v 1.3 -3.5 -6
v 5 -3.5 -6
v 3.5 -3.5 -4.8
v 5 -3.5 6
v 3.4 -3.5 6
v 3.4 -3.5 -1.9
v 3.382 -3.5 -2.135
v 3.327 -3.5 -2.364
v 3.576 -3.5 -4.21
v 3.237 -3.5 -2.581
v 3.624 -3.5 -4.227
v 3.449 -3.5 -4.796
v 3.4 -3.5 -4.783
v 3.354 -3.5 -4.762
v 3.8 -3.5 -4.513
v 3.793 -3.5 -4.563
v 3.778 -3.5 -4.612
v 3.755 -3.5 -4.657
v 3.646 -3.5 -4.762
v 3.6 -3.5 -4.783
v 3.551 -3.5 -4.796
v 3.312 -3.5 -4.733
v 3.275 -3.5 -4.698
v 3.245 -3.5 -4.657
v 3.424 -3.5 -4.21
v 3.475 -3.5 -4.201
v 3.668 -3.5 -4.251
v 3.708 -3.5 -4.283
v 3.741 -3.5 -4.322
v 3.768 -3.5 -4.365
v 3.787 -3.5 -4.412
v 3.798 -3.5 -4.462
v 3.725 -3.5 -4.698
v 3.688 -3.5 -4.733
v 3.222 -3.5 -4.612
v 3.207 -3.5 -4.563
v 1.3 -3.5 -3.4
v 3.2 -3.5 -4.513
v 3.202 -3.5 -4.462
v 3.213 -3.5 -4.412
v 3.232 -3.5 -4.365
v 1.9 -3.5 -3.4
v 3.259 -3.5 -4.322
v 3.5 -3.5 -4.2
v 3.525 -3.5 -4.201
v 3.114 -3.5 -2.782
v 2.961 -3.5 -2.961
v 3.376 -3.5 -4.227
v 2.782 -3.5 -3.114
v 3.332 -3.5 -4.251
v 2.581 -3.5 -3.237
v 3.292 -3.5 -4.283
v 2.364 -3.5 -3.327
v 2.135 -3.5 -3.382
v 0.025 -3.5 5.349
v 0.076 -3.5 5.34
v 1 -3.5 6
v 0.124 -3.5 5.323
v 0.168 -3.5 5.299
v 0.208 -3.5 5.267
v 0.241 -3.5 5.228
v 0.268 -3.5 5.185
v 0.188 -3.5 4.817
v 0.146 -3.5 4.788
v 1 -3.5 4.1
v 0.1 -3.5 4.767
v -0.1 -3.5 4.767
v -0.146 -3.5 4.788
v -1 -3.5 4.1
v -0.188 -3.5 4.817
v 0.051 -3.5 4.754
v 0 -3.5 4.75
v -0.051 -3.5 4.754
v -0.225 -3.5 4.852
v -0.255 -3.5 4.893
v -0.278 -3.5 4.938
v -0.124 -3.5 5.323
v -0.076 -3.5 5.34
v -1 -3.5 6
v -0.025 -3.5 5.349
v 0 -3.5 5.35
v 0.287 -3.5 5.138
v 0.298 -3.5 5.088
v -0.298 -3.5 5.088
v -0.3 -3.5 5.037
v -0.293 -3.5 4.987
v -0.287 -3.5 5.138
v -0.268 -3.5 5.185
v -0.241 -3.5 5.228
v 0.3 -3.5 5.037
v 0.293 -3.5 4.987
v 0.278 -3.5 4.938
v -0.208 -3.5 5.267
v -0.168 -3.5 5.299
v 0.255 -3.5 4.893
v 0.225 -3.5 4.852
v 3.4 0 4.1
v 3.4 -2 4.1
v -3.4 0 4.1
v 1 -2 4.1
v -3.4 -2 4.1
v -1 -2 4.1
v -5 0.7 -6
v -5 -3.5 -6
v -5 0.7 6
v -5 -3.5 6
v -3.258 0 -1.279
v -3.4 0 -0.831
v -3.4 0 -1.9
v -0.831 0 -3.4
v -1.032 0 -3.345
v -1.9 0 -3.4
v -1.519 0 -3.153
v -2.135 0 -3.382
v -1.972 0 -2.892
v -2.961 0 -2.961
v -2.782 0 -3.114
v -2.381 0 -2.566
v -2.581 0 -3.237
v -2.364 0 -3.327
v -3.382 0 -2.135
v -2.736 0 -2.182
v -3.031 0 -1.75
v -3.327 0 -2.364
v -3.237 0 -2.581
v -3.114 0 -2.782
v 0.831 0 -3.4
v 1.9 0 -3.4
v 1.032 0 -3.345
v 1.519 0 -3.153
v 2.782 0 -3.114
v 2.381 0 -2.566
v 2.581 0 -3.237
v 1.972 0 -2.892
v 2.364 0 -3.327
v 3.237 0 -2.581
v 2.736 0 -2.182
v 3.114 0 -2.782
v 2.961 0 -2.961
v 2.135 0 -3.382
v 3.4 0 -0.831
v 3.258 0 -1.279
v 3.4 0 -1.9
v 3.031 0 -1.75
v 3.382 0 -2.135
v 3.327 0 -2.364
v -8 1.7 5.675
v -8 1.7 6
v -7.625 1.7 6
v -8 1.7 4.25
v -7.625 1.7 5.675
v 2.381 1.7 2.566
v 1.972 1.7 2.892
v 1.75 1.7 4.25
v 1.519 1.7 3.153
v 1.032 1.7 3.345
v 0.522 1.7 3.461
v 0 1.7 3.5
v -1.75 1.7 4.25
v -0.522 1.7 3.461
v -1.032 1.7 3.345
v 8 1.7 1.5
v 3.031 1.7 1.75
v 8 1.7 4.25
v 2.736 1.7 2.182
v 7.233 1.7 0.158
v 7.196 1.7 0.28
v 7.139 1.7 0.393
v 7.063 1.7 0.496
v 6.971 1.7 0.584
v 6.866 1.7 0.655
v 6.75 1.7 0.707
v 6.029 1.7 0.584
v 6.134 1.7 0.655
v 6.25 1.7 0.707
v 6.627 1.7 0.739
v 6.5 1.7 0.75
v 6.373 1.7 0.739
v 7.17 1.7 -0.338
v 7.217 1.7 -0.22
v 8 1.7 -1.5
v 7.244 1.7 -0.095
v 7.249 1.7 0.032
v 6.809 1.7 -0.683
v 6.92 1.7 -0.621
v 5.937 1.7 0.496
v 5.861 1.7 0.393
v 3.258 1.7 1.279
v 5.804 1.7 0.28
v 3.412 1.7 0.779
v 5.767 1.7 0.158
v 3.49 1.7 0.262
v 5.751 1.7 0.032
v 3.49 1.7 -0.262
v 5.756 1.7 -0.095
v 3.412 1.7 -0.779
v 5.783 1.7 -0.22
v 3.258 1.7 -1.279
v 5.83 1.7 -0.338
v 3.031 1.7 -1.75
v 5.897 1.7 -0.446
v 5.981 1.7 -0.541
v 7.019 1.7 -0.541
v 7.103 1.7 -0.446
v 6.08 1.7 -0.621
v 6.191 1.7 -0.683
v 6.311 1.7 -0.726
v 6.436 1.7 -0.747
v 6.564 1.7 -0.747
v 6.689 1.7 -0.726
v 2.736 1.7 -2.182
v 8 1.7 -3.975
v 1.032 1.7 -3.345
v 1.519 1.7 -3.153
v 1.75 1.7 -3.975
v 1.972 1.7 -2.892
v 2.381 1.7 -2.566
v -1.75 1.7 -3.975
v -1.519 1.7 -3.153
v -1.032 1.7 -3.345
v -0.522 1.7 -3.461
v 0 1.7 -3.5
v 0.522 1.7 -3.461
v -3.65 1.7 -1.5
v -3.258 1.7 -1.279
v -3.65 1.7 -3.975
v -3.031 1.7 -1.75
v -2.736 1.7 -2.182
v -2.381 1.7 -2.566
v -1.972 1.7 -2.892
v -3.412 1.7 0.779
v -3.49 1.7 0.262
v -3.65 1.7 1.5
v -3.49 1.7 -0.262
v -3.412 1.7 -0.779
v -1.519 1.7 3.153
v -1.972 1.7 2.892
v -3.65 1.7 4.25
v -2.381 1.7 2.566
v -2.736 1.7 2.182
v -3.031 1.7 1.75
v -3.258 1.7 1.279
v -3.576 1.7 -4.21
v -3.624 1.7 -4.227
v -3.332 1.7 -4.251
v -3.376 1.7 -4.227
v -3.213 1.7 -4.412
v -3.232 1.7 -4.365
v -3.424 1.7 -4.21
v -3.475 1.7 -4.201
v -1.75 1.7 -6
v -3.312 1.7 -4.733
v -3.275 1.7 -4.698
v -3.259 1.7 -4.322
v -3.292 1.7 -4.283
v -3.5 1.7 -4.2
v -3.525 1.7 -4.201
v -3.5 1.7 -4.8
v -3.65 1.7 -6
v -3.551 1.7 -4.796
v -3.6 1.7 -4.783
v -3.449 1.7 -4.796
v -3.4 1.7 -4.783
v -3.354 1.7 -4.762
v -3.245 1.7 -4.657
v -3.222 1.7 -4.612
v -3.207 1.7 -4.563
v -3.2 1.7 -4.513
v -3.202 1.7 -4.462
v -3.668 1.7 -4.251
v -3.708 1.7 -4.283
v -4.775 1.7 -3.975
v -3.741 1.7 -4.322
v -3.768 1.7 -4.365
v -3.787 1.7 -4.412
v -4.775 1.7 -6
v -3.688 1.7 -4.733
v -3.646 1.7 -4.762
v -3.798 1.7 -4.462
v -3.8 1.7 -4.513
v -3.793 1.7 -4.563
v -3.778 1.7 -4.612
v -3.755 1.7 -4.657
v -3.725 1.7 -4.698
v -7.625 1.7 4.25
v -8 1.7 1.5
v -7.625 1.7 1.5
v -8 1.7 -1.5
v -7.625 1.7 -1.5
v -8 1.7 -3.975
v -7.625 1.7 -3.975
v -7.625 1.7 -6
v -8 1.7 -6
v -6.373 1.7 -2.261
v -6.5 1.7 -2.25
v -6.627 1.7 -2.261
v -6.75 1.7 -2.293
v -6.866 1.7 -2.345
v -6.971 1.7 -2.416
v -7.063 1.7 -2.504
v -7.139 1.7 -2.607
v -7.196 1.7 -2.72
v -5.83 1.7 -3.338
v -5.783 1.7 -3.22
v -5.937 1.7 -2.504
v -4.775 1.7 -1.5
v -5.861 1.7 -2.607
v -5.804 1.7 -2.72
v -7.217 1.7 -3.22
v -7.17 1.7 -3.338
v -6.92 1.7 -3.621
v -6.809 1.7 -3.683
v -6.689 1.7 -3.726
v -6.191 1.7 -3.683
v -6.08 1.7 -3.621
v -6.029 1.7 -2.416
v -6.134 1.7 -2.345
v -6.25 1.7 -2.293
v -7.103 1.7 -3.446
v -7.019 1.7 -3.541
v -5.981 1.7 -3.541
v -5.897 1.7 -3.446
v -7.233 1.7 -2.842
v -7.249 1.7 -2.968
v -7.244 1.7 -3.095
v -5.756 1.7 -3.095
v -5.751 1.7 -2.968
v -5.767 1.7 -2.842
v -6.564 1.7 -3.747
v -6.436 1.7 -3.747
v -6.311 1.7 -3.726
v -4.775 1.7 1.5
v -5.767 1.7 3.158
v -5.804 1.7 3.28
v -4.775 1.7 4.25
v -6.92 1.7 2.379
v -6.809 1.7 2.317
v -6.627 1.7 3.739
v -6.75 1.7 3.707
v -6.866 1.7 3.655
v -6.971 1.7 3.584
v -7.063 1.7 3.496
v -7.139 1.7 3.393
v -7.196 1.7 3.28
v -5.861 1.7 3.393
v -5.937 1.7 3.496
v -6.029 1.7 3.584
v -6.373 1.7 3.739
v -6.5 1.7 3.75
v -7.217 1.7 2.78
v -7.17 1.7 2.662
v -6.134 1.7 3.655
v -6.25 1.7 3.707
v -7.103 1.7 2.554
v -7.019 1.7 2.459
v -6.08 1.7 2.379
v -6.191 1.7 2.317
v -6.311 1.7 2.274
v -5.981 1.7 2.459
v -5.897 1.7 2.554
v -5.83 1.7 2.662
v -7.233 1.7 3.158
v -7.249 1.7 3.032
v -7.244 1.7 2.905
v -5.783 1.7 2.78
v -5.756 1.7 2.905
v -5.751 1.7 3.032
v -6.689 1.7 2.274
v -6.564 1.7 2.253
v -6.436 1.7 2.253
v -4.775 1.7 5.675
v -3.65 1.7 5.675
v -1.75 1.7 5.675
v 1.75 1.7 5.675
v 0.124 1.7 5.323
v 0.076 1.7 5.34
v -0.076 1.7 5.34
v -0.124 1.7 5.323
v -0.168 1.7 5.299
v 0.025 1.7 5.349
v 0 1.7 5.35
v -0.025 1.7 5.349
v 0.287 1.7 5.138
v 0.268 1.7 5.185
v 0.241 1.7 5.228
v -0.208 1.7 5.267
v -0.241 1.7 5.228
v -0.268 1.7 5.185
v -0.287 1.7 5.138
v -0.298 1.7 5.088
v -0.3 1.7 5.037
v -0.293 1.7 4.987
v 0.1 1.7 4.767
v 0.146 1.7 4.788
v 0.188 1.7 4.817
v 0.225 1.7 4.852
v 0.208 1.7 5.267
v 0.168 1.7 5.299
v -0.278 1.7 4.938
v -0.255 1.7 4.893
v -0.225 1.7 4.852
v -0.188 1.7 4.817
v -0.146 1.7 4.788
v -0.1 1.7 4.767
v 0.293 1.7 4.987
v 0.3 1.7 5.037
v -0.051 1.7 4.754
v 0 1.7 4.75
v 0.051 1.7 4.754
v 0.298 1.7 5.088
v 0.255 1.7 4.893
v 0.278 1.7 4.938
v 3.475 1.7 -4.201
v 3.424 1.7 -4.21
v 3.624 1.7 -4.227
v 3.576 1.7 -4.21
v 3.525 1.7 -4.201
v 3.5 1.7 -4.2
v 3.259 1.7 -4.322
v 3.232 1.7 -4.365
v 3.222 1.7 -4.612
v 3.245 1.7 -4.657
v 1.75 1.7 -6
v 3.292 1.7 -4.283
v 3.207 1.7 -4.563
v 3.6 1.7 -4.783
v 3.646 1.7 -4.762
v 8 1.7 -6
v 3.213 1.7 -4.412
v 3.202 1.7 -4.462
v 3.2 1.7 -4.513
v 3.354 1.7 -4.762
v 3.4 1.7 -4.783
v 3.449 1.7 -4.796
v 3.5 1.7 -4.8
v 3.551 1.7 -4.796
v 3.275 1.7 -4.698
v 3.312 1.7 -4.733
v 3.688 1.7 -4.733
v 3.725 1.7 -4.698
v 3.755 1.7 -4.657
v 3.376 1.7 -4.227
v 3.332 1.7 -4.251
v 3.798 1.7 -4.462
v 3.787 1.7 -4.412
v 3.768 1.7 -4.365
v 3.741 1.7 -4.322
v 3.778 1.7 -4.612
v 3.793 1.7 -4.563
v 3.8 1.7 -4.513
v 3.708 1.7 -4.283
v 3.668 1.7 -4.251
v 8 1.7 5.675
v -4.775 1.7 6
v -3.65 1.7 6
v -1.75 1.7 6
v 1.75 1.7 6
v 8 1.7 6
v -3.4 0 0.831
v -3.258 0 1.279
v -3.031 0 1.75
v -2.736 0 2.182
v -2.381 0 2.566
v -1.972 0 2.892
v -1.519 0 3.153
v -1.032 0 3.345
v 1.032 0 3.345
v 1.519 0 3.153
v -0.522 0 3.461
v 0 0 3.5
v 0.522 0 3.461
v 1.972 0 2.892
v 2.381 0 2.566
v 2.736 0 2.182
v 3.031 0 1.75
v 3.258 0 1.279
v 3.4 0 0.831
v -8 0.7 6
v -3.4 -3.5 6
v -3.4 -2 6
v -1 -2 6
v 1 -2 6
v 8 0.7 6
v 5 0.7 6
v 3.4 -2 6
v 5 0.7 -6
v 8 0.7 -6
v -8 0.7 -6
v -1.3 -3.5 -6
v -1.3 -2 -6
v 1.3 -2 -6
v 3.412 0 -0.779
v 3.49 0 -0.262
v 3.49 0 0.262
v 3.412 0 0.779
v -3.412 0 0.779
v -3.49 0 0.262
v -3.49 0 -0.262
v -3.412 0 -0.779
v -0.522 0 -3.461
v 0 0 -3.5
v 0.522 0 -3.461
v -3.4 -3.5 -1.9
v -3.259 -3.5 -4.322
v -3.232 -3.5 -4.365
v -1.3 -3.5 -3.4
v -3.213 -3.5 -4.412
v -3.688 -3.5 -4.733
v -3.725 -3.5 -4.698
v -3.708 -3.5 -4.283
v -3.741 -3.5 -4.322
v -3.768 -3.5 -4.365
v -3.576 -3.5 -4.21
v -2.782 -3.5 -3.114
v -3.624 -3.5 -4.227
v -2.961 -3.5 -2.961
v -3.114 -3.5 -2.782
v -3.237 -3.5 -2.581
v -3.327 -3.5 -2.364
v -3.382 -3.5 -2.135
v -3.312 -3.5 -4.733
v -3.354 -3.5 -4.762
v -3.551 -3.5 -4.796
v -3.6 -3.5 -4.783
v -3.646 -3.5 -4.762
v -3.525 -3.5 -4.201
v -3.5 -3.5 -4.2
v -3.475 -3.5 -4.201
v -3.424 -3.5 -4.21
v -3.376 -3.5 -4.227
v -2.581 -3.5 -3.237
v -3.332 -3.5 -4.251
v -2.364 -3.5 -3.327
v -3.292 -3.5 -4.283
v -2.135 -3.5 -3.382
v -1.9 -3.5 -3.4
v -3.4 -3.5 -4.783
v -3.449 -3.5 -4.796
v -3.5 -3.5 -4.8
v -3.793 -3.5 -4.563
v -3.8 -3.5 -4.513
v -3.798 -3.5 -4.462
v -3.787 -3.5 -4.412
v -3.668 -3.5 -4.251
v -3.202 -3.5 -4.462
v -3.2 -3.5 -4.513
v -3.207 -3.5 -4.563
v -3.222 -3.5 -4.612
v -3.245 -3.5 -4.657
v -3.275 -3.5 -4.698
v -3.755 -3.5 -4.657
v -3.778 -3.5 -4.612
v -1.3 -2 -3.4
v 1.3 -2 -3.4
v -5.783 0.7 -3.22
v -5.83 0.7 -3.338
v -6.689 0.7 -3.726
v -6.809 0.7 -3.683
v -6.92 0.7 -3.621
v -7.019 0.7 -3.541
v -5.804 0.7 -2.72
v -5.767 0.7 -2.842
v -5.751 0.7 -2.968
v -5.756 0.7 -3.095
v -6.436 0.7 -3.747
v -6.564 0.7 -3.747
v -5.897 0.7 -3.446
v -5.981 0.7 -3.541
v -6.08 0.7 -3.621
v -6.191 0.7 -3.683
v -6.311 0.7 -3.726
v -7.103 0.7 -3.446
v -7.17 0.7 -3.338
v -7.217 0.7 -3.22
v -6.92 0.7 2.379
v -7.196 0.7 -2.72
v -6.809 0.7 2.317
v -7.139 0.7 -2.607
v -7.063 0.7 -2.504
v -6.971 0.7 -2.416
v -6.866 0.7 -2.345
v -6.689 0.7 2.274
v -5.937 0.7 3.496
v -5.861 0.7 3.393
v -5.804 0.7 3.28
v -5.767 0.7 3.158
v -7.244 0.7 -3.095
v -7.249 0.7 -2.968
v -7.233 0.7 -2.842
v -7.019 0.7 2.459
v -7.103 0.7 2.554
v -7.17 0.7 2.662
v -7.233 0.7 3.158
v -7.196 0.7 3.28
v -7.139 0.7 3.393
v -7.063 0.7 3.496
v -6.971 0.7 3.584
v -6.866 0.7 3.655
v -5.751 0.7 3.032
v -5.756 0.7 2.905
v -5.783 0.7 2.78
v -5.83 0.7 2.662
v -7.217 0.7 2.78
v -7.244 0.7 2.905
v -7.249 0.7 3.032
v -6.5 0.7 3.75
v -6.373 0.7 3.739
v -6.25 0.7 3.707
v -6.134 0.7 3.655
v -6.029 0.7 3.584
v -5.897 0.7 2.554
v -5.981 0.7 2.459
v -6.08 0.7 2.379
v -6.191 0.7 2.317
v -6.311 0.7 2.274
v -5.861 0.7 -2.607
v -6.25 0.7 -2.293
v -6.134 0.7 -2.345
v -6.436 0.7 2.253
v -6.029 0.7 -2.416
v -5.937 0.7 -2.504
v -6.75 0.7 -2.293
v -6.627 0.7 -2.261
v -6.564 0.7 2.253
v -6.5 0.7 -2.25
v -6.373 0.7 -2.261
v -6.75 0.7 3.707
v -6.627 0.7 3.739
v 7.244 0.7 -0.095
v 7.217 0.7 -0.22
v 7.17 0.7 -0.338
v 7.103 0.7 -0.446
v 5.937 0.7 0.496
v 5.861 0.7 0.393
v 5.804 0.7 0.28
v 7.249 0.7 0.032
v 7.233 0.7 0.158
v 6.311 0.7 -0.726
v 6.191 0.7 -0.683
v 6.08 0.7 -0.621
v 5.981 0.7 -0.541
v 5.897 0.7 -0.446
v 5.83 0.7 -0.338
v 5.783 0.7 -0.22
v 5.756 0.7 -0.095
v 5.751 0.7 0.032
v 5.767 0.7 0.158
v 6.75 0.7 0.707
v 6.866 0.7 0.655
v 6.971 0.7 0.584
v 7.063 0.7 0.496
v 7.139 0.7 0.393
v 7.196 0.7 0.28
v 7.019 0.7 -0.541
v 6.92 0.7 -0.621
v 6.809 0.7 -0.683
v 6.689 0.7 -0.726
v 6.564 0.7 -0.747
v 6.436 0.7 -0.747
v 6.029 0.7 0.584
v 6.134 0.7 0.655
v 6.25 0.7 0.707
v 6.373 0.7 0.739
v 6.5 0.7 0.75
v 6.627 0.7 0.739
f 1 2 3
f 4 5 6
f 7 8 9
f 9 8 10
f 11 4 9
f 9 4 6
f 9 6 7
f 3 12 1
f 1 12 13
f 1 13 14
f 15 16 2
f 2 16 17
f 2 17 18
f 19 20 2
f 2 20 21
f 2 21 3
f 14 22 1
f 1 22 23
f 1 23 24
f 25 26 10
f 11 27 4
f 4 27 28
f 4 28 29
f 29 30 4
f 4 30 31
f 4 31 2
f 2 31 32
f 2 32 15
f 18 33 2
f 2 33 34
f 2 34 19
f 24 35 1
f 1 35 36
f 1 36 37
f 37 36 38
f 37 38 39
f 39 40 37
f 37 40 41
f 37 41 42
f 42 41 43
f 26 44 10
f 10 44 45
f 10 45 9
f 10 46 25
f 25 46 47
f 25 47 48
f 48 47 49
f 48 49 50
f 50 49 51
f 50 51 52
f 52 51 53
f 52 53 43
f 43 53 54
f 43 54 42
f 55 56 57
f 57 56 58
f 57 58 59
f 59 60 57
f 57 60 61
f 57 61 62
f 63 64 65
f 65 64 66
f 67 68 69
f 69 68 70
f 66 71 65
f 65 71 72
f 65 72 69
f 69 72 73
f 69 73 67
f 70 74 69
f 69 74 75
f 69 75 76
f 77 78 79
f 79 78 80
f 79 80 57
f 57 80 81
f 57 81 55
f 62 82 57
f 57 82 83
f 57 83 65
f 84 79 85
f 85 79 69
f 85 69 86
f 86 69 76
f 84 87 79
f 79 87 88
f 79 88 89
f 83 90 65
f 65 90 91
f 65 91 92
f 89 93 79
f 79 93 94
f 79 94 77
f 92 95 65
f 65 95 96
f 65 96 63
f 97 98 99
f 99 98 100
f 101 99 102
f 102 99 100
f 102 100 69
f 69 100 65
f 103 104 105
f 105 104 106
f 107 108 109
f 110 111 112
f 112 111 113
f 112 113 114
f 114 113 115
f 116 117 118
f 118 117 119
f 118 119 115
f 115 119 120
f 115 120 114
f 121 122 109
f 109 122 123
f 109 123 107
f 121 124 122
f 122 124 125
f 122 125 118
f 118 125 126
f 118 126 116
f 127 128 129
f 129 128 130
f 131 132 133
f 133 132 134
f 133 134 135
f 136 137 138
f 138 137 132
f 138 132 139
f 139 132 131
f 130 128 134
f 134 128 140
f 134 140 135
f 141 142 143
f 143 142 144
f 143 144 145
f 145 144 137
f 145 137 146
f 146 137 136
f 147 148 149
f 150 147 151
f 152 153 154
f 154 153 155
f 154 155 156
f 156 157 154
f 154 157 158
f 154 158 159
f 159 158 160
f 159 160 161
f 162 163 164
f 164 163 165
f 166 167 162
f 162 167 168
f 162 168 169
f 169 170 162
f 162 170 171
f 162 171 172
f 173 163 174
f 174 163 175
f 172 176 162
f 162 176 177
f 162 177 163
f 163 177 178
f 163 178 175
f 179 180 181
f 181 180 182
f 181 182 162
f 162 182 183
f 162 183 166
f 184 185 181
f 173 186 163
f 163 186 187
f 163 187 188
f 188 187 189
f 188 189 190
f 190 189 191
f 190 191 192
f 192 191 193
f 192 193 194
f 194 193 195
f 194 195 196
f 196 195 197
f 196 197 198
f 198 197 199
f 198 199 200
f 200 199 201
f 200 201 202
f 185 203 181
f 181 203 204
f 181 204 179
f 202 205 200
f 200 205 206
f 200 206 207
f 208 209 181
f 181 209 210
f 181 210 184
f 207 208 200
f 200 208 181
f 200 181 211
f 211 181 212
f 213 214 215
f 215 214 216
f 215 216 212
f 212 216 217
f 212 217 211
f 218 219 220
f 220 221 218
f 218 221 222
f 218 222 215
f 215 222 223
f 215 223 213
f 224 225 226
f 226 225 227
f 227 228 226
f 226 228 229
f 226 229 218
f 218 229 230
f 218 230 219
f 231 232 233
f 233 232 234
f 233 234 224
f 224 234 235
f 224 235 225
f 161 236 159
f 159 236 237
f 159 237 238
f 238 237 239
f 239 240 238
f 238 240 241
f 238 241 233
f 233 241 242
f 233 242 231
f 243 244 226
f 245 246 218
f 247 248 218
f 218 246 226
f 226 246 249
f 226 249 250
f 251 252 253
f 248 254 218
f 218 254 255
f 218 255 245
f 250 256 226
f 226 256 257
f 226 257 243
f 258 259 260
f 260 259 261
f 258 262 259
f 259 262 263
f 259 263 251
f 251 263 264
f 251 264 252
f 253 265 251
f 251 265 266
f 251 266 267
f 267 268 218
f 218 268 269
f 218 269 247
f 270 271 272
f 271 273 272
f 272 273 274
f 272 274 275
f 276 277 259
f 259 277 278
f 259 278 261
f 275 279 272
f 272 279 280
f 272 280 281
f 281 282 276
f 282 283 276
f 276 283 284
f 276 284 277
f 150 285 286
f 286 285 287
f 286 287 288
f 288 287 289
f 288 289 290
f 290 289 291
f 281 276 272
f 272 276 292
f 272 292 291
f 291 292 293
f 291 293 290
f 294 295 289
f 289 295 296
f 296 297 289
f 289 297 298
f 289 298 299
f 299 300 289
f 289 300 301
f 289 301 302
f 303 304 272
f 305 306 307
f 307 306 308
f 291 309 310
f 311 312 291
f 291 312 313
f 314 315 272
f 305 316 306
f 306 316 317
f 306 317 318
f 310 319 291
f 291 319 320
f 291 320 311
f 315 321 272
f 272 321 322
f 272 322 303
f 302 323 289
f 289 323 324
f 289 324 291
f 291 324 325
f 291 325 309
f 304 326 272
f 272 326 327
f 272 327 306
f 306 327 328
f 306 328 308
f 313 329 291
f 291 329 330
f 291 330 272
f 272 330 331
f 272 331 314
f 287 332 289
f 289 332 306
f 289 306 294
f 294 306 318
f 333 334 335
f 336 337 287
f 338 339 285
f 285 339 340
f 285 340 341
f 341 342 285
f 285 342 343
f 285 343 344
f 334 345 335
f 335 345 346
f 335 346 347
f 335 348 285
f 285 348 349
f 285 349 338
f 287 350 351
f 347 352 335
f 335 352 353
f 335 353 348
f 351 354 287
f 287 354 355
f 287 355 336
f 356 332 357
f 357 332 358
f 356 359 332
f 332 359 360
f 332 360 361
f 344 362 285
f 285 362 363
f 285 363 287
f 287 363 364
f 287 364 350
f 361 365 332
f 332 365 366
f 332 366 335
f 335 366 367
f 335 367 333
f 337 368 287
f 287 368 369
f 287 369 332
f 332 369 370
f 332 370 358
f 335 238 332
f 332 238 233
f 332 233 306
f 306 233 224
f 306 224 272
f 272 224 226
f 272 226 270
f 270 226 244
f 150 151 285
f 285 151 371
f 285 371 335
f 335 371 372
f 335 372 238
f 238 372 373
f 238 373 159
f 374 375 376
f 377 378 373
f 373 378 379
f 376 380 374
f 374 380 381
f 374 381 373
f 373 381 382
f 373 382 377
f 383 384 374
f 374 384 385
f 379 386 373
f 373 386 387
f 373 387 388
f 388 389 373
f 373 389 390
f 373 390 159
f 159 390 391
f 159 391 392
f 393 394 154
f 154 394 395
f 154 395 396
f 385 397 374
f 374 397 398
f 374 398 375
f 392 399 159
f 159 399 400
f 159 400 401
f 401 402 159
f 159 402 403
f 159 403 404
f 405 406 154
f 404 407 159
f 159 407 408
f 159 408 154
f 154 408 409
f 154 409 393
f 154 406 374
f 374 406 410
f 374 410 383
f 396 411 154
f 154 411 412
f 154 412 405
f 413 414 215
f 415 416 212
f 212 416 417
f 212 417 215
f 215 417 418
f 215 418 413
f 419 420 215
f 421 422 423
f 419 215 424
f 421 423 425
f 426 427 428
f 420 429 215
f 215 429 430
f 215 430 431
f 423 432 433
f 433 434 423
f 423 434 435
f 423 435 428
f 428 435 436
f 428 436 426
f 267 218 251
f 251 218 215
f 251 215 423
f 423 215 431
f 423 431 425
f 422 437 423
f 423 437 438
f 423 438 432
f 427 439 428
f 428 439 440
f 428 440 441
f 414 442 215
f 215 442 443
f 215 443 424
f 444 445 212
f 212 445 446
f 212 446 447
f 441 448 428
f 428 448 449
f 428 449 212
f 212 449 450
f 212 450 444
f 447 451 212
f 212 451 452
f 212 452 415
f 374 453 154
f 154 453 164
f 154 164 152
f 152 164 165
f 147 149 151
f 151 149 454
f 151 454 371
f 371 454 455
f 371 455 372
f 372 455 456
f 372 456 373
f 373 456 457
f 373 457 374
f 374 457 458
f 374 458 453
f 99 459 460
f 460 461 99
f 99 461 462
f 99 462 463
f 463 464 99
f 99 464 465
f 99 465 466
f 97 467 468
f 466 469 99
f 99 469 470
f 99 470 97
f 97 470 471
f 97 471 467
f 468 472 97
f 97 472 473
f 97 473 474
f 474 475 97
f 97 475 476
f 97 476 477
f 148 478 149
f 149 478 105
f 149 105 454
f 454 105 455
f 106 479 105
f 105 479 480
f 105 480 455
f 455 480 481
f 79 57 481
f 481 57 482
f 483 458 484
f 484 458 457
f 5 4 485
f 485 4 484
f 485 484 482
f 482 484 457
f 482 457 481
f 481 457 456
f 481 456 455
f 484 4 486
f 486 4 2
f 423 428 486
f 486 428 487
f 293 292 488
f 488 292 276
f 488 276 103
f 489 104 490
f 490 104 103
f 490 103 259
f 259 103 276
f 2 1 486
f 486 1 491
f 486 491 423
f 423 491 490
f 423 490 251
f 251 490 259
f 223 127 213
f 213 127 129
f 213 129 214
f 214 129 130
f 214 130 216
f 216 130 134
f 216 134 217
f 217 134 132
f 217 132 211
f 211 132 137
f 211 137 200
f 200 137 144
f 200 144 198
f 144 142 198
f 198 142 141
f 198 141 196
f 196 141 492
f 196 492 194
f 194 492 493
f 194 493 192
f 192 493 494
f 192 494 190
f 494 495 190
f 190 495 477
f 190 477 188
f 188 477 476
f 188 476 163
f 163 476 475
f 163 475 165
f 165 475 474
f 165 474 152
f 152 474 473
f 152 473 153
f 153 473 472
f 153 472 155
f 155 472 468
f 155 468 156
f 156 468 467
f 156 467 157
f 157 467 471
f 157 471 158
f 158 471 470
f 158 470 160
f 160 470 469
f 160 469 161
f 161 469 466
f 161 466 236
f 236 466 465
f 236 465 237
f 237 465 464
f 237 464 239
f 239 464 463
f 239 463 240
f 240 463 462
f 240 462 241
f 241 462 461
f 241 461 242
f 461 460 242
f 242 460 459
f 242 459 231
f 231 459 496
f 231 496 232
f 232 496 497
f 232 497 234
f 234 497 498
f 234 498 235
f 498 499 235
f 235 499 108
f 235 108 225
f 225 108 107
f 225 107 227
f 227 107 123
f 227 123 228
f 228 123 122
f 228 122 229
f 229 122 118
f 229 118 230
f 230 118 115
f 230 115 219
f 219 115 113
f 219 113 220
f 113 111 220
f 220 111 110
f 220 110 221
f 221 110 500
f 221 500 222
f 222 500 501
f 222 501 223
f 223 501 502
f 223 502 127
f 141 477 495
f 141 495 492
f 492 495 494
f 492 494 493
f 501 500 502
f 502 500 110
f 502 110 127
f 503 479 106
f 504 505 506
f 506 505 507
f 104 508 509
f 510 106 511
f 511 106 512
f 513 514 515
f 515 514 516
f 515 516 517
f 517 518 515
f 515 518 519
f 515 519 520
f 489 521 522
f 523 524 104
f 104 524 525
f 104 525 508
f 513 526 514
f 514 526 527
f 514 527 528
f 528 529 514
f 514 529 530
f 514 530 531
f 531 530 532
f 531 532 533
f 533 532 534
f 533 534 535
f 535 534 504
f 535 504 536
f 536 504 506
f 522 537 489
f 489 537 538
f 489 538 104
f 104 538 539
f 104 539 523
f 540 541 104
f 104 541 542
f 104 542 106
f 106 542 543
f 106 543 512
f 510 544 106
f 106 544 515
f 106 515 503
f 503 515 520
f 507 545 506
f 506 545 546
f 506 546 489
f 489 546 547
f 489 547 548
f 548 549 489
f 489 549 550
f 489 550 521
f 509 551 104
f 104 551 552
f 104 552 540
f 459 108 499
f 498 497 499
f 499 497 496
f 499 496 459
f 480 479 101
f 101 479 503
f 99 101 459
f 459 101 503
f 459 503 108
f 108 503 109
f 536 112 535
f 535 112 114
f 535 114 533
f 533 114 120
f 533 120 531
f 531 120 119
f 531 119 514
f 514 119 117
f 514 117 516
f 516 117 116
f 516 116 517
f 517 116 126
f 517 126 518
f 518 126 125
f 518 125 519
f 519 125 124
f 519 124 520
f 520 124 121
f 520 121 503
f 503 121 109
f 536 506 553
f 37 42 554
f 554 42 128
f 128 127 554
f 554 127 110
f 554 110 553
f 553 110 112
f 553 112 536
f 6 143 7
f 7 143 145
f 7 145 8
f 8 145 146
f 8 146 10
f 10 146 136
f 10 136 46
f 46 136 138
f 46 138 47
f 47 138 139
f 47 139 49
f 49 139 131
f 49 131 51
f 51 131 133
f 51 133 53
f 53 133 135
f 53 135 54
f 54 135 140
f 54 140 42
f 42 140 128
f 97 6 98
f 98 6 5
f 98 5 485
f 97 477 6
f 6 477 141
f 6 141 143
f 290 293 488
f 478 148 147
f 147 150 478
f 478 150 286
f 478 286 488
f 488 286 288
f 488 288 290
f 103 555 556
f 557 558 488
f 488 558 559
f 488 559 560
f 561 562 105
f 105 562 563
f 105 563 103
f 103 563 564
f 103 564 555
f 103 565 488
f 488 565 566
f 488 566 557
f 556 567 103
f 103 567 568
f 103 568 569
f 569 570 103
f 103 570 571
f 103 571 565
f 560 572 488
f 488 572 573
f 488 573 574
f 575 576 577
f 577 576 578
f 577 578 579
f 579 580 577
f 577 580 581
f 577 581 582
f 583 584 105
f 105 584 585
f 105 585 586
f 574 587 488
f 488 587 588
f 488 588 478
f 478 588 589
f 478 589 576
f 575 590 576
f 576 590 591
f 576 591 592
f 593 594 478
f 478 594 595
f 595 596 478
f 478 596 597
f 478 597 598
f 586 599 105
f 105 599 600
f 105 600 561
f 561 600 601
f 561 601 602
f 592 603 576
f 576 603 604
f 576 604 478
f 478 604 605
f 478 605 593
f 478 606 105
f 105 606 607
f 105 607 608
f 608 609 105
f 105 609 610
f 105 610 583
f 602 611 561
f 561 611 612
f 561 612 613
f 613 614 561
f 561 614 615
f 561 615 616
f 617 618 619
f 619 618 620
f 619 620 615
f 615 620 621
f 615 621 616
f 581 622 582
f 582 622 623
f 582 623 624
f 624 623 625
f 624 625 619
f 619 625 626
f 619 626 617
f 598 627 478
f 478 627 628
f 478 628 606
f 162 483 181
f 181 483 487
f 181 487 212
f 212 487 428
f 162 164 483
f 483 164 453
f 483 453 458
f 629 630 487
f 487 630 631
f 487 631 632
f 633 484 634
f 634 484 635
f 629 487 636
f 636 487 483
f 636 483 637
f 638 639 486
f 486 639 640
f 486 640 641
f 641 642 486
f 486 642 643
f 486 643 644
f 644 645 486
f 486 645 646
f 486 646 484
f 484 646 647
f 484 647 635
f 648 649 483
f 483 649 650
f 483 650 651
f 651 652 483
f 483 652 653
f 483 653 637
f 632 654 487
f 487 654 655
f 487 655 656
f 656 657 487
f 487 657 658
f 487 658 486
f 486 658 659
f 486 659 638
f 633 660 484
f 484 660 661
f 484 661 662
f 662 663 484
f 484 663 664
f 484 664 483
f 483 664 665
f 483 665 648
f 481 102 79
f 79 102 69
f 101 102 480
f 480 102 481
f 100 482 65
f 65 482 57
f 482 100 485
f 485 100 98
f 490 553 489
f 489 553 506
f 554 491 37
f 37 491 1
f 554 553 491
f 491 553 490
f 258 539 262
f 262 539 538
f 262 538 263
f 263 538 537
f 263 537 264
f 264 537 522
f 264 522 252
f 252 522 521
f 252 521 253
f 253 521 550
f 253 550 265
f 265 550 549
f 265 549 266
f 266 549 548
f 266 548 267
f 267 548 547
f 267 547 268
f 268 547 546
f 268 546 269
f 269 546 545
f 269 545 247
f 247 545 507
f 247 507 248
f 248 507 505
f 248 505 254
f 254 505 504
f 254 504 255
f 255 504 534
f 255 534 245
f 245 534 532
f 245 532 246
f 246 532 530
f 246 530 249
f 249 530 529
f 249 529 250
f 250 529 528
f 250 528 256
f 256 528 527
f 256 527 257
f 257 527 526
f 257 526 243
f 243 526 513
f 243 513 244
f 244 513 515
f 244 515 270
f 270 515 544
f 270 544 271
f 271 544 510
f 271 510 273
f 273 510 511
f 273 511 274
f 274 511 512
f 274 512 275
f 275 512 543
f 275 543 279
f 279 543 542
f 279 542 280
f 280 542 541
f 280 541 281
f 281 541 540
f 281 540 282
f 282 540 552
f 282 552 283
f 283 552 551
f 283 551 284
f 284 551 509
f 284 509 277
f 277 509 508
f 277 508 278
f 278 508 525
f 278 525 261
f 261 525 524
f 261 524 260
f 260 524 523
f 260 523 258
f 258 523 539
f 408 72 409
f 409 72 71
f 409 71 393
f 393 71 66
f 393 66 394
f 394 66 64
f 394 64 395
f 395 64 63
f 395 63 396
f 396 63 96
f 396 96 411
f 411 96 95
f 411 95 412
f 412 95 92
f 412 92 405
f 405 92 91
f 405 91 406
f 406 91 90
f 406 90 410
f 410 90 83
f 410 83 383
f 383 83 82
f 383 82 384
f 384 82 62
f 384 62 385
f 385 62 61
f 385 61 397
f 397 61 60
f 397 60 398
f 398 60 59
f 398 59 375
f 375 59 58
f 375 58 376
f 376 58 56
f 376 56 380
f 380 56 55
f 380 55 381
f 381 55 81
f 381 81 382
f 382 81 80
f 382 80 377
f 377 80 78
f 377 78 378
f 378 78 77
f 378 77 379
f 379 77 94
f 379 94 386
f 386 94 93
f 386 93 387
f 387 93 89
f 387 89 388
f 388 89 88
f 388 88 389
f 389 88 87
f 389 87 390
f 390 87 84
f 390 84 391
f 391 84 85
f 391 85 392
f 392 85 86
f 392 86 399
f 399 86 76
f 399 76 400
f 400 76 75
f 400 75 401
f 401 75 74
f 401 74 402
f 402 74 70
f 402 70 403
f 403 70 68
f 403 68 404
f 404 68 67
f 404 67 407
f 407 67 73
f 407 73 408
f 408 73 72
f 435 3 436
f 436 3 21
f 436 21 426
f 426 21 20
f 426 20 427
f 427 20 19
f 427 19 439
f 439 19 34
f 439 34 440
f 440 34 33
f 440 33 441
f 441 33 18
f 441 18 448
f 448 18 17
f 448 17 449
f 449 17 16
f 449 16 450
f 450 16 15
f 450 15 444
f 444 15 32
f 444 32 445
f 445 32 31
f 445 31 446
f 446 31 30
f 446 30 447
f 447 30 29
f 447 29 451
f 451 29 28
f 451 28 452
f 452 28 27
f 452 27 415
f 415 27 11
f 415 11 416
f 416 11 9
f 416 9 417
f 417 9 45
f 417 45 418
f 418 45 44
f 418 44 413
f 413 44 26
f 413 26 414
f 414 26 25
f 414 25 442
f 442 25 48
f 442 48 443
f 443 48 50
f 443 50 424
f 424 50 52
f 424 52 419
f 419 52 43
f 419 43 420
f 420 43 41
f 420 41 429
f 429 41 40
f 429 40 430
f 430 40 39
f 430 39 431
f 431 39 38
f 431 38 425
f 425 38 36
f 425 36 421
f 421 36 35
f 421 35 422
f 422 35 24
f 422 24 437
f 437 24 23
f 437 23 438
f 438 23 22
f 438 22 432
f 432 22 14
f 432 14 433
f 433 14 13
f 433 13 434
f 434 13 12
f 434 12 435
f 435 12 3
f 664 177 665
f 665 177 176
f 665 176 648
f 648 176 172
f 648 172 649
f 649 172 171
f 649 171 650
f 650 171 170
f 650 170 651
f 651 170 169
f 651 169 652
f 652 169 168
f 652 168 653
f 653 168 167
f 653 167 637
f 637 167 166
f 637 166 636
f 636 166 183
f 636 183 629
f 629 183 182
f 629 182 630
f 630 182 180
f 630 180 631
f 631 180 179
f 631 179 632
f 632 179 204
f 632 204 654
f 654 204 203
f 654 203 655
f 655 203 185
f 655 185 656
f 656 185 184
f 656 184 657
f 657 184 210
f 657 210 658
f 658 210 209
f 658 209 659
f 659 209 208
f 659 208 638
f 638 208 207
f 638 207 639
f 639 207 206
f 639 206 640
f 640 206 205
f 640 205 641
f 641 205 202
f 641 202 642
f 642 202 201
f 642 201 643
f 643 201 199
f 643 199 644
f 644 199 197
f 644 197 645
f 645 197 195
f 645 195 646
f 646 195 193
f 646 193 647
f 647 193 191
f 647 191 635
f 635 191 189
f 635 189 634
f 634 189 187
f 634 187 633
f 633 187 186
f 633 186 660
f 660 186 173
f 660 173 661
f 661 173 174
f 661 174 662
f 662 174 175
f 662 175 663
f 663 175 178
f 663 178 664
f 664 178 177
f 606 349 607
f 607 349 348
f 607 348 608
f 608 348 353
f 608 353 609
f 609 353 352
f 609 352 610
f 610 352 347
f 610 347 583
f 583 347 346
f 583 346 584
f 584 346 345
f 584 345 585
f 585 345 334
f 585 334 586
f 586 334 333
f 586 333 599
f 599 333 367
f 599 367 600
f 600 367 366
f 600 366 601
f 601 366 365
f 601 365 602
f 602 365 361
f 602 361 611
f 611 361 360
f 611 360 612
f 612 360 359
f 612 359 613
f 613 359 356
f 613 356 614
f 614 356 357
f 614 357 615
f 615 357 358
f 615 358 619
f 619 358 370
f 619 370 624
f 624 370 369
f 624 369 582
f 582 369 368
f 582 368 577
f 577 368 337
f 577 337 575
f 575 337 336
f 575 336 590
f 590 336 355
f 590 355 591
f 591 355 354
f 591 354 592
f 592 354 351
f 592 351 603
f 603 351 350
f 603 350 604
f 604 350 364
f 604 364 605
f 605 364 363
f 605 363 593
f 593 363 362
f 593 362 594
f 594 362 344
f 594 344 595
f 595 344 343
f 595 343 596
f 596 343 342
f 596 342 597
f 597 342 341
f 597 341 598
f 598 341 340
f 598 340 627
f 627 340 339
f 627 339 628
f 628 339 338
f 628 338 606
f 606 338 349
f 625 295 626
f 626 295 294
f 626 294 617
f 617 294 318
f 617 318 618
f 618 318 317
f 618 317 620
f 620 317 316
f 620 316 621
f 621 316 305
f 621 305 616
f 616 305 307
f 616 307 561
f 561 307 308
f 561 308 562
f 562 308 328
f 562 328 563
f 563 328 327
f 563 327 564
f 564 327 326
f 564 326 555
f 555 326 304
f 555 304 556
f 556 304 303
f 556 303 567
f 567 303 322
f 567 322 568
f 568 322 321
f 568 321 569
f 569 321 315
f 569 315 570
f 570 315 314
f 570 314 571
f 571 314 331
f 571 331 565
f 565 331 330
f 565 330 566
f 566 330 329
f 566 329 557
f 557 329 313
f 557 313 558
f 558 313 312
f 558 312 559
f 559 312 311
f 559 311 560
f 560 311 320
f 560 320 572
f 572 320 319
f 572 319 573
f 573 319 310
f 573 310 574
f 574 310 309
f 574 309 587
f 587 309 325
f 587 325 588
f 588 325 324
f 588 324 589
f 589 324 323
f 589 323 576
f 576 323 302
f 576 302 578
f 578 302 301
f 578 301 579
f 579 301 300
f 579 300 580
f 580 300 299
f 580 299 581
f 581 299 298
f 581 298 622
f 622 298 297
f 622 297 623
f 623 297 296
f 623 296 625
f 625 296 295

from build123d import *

# Parameters (mm, degrees)
SKETCH_1_W          = 10
SKETCH_1_H          = 12
SKETCH_1_R          = 3.5
EXTRUDE_1_DEPTH     = 1.7
SKETCH_4_W          = 10
SKETCH_4_H          = 12
EXTRUDE_2_DEPTH     = 3.5
EXTRUDE_START       = -1.7
SKETCH_4_4_W        = 3
SKETCH_4_4_H        = 12
EXTRUDE_3_DEPTH     = 1
CUT_EXTRUDE_START   = 3.5
SKETCH_4_3_W        = 2.4
SKETCH_4_3_H        = 1.9
CUT_EXTRUDE_2_DEPTH = 1.5
CUT_EXTRUDE_START_2 = -5.2
SKETCH_5_R          = 0.3
CUT_EXTRUDE_5_DEPTH = 4
SKETCH_5_6_R        = 0.3
SKETCH_5_6_R_2      = 0.75
CUT_EXTRUDE_6_DEPTH = 12.271202243


with BuildPart() as part:
    # 草图1 → 凸台-拉伸1 (new body)
    with BuildSketch(Plane(origin=(0, 0, 0), x_dir=(1, 0, 0), z_dir=(0, 1, 0))):
        Rectangle(SKETCH_1_W, SKETCH_1_H)
        with Locations(Location((0, 0, 0), (0, 0, 270))):
            Circle(SKETCH_1_R, mode=Mode.SUBTRACT)
    extrude(amount=EXTRUDE_1_DEPTH)

    # 草图4 → 凸台-拉伸2 (add)
    with BuildSketch(Plane.XZ):
        Rectangle(SKETCH_4_W, SKETCH_4_H)
        with BuildLine():
            Line((3.4, 4.1), (3.4, -1.9))
            ThreePointArc((3.4, -1.9), (2.960660172, -2.960660172), (1.9, -3.4))
            Line((1.9, -3.4), (-1.9, -3.4))
            ThreePointArc((-1.9, -3.4), (-2.960660172, -2.960660172), (-3.4, -1.9))
            Line((-3.4, -1.9), (-3.4, 4.1))
            Line((-3.4, 4.1), (3.4, 4.1))
        make_face(mode=Mode.SUBTRACT)
    extrude(amount=EXTRUDE_2_DEPTH)

    # 草图4<4> → 凸台-拉伸3 (add)
    with BuildSketch(Plane.XZ.offset(EXTRUDE_START)):
        with Locations((-6.5, 0)):
            Rectangle(SKETCH_4_4_W, SKETCH_4_4_H)
        with Locations((6.5, 0)):
            Rectangle(SKETCH_4_4_W, SKETCH_4_4_H)
    extrude(amount=EXTRUDE_3_DEPTH)

    # 草图4<3> → 切除-拉伸2 (cut)
    with BuildSketch(Plane.XZ.offset(CUT_EXTRUDE_START)):
        with Locations((-2.2, 5.05)):
            Rectangle(SKETCH_4_3_W, SKETCH_4_3_H)
        with Locations((2.2, 5.05)):
            Rectangle(SKETCH_4_3_W, SKETCH_4_3_H)
        with BuildLine():
            Line((1.3, -6), (1.3, -3.4))
            Line((1.3, -3.4), (0.830662386, -3.4))
            ThreePointArc((0.830662386, -3.4), (0, -3.5), (-0.830662386, -3.4))
            Line((-0.830662386, -3.4), (-1.3, -3.4))
            Line((-1.3, -3.4), (-1.3, -6))
            Line((-1.3, -6), (1.3, -6))
        make_face()
        with BuildLine():
            ThreePointArc((-0.830662386, -3.4), (0, -3.5), (0.830662386, -3.4))
            Line((0.830662386, -3.4), (-0.830662386, -3.4))
        make_face()
    extrude(amount=-CUT_EXTRUDE_2_DEPTH, mode=Mode.SUBTRACT)

    # 草图5 → 切除-拉伸5 (cut)
    with BuildSketch(Plane(origin=(0, 1.7, 0), x_dir=(1, 0, 0), z_dir=(0, 1, 0)).offset(CUT_EXTRUDE_START_2)):
        with Locations(Location((3.5, 4.5, 0), (0, 0, 270))):
            Circle(SKETCH_5_R)
        with Locations(Location((-3.5, 4.5, 0), (0, 0, 270))):
            Circle(SKETCH_5_R)
        with Locations(Location((0, -5.05, 0), (0, 0, 270))):
            Circle(SKETCH_5_R)
    extrude(amount=CUT_EXTRUDE_5_DEPTH, mode=Mode.SUBTRACT)

    # 草图5<6> → 切除-拉伸6 (cut, through all)
    with BuildSketch(Plane(origin=(0, 1.7, 0), x_dir=(1, 0, 0), z_dir=(0, 1, 0))):
        with Locations(Location((3.5, 4.5, 0), (0, 0, 270))):
            Circle(SKETCH_5_6_R)
        with Locations(Location((-3.5, 4.5, 0), (0, 0, 270))):
            Circle(SKETCH_5_6_R)
        with Locations(Location((0, -5.05, 0), (0, 0, 270))):
            Circle(SKETCH_5_6_R)
        with Locations(Location((6.5, 0, 0), (0, 0, 270))):
            Circle(SKETCH_5_6_R_2)
        with Locations(Location((-6.5, 3, 0), (0, 0, 270))):
            Circle(SKETCH_5_6_R_2)
        with Locations(Location((-6.5, -3, 0), (0, 0, 270))):
            Circle(SKETCH_5_6_R_2)
    extrude(amount=-CUT_EXTRUDE_6_DEPTH, mode=Mode.SUBTRACT)


solid = part.part
